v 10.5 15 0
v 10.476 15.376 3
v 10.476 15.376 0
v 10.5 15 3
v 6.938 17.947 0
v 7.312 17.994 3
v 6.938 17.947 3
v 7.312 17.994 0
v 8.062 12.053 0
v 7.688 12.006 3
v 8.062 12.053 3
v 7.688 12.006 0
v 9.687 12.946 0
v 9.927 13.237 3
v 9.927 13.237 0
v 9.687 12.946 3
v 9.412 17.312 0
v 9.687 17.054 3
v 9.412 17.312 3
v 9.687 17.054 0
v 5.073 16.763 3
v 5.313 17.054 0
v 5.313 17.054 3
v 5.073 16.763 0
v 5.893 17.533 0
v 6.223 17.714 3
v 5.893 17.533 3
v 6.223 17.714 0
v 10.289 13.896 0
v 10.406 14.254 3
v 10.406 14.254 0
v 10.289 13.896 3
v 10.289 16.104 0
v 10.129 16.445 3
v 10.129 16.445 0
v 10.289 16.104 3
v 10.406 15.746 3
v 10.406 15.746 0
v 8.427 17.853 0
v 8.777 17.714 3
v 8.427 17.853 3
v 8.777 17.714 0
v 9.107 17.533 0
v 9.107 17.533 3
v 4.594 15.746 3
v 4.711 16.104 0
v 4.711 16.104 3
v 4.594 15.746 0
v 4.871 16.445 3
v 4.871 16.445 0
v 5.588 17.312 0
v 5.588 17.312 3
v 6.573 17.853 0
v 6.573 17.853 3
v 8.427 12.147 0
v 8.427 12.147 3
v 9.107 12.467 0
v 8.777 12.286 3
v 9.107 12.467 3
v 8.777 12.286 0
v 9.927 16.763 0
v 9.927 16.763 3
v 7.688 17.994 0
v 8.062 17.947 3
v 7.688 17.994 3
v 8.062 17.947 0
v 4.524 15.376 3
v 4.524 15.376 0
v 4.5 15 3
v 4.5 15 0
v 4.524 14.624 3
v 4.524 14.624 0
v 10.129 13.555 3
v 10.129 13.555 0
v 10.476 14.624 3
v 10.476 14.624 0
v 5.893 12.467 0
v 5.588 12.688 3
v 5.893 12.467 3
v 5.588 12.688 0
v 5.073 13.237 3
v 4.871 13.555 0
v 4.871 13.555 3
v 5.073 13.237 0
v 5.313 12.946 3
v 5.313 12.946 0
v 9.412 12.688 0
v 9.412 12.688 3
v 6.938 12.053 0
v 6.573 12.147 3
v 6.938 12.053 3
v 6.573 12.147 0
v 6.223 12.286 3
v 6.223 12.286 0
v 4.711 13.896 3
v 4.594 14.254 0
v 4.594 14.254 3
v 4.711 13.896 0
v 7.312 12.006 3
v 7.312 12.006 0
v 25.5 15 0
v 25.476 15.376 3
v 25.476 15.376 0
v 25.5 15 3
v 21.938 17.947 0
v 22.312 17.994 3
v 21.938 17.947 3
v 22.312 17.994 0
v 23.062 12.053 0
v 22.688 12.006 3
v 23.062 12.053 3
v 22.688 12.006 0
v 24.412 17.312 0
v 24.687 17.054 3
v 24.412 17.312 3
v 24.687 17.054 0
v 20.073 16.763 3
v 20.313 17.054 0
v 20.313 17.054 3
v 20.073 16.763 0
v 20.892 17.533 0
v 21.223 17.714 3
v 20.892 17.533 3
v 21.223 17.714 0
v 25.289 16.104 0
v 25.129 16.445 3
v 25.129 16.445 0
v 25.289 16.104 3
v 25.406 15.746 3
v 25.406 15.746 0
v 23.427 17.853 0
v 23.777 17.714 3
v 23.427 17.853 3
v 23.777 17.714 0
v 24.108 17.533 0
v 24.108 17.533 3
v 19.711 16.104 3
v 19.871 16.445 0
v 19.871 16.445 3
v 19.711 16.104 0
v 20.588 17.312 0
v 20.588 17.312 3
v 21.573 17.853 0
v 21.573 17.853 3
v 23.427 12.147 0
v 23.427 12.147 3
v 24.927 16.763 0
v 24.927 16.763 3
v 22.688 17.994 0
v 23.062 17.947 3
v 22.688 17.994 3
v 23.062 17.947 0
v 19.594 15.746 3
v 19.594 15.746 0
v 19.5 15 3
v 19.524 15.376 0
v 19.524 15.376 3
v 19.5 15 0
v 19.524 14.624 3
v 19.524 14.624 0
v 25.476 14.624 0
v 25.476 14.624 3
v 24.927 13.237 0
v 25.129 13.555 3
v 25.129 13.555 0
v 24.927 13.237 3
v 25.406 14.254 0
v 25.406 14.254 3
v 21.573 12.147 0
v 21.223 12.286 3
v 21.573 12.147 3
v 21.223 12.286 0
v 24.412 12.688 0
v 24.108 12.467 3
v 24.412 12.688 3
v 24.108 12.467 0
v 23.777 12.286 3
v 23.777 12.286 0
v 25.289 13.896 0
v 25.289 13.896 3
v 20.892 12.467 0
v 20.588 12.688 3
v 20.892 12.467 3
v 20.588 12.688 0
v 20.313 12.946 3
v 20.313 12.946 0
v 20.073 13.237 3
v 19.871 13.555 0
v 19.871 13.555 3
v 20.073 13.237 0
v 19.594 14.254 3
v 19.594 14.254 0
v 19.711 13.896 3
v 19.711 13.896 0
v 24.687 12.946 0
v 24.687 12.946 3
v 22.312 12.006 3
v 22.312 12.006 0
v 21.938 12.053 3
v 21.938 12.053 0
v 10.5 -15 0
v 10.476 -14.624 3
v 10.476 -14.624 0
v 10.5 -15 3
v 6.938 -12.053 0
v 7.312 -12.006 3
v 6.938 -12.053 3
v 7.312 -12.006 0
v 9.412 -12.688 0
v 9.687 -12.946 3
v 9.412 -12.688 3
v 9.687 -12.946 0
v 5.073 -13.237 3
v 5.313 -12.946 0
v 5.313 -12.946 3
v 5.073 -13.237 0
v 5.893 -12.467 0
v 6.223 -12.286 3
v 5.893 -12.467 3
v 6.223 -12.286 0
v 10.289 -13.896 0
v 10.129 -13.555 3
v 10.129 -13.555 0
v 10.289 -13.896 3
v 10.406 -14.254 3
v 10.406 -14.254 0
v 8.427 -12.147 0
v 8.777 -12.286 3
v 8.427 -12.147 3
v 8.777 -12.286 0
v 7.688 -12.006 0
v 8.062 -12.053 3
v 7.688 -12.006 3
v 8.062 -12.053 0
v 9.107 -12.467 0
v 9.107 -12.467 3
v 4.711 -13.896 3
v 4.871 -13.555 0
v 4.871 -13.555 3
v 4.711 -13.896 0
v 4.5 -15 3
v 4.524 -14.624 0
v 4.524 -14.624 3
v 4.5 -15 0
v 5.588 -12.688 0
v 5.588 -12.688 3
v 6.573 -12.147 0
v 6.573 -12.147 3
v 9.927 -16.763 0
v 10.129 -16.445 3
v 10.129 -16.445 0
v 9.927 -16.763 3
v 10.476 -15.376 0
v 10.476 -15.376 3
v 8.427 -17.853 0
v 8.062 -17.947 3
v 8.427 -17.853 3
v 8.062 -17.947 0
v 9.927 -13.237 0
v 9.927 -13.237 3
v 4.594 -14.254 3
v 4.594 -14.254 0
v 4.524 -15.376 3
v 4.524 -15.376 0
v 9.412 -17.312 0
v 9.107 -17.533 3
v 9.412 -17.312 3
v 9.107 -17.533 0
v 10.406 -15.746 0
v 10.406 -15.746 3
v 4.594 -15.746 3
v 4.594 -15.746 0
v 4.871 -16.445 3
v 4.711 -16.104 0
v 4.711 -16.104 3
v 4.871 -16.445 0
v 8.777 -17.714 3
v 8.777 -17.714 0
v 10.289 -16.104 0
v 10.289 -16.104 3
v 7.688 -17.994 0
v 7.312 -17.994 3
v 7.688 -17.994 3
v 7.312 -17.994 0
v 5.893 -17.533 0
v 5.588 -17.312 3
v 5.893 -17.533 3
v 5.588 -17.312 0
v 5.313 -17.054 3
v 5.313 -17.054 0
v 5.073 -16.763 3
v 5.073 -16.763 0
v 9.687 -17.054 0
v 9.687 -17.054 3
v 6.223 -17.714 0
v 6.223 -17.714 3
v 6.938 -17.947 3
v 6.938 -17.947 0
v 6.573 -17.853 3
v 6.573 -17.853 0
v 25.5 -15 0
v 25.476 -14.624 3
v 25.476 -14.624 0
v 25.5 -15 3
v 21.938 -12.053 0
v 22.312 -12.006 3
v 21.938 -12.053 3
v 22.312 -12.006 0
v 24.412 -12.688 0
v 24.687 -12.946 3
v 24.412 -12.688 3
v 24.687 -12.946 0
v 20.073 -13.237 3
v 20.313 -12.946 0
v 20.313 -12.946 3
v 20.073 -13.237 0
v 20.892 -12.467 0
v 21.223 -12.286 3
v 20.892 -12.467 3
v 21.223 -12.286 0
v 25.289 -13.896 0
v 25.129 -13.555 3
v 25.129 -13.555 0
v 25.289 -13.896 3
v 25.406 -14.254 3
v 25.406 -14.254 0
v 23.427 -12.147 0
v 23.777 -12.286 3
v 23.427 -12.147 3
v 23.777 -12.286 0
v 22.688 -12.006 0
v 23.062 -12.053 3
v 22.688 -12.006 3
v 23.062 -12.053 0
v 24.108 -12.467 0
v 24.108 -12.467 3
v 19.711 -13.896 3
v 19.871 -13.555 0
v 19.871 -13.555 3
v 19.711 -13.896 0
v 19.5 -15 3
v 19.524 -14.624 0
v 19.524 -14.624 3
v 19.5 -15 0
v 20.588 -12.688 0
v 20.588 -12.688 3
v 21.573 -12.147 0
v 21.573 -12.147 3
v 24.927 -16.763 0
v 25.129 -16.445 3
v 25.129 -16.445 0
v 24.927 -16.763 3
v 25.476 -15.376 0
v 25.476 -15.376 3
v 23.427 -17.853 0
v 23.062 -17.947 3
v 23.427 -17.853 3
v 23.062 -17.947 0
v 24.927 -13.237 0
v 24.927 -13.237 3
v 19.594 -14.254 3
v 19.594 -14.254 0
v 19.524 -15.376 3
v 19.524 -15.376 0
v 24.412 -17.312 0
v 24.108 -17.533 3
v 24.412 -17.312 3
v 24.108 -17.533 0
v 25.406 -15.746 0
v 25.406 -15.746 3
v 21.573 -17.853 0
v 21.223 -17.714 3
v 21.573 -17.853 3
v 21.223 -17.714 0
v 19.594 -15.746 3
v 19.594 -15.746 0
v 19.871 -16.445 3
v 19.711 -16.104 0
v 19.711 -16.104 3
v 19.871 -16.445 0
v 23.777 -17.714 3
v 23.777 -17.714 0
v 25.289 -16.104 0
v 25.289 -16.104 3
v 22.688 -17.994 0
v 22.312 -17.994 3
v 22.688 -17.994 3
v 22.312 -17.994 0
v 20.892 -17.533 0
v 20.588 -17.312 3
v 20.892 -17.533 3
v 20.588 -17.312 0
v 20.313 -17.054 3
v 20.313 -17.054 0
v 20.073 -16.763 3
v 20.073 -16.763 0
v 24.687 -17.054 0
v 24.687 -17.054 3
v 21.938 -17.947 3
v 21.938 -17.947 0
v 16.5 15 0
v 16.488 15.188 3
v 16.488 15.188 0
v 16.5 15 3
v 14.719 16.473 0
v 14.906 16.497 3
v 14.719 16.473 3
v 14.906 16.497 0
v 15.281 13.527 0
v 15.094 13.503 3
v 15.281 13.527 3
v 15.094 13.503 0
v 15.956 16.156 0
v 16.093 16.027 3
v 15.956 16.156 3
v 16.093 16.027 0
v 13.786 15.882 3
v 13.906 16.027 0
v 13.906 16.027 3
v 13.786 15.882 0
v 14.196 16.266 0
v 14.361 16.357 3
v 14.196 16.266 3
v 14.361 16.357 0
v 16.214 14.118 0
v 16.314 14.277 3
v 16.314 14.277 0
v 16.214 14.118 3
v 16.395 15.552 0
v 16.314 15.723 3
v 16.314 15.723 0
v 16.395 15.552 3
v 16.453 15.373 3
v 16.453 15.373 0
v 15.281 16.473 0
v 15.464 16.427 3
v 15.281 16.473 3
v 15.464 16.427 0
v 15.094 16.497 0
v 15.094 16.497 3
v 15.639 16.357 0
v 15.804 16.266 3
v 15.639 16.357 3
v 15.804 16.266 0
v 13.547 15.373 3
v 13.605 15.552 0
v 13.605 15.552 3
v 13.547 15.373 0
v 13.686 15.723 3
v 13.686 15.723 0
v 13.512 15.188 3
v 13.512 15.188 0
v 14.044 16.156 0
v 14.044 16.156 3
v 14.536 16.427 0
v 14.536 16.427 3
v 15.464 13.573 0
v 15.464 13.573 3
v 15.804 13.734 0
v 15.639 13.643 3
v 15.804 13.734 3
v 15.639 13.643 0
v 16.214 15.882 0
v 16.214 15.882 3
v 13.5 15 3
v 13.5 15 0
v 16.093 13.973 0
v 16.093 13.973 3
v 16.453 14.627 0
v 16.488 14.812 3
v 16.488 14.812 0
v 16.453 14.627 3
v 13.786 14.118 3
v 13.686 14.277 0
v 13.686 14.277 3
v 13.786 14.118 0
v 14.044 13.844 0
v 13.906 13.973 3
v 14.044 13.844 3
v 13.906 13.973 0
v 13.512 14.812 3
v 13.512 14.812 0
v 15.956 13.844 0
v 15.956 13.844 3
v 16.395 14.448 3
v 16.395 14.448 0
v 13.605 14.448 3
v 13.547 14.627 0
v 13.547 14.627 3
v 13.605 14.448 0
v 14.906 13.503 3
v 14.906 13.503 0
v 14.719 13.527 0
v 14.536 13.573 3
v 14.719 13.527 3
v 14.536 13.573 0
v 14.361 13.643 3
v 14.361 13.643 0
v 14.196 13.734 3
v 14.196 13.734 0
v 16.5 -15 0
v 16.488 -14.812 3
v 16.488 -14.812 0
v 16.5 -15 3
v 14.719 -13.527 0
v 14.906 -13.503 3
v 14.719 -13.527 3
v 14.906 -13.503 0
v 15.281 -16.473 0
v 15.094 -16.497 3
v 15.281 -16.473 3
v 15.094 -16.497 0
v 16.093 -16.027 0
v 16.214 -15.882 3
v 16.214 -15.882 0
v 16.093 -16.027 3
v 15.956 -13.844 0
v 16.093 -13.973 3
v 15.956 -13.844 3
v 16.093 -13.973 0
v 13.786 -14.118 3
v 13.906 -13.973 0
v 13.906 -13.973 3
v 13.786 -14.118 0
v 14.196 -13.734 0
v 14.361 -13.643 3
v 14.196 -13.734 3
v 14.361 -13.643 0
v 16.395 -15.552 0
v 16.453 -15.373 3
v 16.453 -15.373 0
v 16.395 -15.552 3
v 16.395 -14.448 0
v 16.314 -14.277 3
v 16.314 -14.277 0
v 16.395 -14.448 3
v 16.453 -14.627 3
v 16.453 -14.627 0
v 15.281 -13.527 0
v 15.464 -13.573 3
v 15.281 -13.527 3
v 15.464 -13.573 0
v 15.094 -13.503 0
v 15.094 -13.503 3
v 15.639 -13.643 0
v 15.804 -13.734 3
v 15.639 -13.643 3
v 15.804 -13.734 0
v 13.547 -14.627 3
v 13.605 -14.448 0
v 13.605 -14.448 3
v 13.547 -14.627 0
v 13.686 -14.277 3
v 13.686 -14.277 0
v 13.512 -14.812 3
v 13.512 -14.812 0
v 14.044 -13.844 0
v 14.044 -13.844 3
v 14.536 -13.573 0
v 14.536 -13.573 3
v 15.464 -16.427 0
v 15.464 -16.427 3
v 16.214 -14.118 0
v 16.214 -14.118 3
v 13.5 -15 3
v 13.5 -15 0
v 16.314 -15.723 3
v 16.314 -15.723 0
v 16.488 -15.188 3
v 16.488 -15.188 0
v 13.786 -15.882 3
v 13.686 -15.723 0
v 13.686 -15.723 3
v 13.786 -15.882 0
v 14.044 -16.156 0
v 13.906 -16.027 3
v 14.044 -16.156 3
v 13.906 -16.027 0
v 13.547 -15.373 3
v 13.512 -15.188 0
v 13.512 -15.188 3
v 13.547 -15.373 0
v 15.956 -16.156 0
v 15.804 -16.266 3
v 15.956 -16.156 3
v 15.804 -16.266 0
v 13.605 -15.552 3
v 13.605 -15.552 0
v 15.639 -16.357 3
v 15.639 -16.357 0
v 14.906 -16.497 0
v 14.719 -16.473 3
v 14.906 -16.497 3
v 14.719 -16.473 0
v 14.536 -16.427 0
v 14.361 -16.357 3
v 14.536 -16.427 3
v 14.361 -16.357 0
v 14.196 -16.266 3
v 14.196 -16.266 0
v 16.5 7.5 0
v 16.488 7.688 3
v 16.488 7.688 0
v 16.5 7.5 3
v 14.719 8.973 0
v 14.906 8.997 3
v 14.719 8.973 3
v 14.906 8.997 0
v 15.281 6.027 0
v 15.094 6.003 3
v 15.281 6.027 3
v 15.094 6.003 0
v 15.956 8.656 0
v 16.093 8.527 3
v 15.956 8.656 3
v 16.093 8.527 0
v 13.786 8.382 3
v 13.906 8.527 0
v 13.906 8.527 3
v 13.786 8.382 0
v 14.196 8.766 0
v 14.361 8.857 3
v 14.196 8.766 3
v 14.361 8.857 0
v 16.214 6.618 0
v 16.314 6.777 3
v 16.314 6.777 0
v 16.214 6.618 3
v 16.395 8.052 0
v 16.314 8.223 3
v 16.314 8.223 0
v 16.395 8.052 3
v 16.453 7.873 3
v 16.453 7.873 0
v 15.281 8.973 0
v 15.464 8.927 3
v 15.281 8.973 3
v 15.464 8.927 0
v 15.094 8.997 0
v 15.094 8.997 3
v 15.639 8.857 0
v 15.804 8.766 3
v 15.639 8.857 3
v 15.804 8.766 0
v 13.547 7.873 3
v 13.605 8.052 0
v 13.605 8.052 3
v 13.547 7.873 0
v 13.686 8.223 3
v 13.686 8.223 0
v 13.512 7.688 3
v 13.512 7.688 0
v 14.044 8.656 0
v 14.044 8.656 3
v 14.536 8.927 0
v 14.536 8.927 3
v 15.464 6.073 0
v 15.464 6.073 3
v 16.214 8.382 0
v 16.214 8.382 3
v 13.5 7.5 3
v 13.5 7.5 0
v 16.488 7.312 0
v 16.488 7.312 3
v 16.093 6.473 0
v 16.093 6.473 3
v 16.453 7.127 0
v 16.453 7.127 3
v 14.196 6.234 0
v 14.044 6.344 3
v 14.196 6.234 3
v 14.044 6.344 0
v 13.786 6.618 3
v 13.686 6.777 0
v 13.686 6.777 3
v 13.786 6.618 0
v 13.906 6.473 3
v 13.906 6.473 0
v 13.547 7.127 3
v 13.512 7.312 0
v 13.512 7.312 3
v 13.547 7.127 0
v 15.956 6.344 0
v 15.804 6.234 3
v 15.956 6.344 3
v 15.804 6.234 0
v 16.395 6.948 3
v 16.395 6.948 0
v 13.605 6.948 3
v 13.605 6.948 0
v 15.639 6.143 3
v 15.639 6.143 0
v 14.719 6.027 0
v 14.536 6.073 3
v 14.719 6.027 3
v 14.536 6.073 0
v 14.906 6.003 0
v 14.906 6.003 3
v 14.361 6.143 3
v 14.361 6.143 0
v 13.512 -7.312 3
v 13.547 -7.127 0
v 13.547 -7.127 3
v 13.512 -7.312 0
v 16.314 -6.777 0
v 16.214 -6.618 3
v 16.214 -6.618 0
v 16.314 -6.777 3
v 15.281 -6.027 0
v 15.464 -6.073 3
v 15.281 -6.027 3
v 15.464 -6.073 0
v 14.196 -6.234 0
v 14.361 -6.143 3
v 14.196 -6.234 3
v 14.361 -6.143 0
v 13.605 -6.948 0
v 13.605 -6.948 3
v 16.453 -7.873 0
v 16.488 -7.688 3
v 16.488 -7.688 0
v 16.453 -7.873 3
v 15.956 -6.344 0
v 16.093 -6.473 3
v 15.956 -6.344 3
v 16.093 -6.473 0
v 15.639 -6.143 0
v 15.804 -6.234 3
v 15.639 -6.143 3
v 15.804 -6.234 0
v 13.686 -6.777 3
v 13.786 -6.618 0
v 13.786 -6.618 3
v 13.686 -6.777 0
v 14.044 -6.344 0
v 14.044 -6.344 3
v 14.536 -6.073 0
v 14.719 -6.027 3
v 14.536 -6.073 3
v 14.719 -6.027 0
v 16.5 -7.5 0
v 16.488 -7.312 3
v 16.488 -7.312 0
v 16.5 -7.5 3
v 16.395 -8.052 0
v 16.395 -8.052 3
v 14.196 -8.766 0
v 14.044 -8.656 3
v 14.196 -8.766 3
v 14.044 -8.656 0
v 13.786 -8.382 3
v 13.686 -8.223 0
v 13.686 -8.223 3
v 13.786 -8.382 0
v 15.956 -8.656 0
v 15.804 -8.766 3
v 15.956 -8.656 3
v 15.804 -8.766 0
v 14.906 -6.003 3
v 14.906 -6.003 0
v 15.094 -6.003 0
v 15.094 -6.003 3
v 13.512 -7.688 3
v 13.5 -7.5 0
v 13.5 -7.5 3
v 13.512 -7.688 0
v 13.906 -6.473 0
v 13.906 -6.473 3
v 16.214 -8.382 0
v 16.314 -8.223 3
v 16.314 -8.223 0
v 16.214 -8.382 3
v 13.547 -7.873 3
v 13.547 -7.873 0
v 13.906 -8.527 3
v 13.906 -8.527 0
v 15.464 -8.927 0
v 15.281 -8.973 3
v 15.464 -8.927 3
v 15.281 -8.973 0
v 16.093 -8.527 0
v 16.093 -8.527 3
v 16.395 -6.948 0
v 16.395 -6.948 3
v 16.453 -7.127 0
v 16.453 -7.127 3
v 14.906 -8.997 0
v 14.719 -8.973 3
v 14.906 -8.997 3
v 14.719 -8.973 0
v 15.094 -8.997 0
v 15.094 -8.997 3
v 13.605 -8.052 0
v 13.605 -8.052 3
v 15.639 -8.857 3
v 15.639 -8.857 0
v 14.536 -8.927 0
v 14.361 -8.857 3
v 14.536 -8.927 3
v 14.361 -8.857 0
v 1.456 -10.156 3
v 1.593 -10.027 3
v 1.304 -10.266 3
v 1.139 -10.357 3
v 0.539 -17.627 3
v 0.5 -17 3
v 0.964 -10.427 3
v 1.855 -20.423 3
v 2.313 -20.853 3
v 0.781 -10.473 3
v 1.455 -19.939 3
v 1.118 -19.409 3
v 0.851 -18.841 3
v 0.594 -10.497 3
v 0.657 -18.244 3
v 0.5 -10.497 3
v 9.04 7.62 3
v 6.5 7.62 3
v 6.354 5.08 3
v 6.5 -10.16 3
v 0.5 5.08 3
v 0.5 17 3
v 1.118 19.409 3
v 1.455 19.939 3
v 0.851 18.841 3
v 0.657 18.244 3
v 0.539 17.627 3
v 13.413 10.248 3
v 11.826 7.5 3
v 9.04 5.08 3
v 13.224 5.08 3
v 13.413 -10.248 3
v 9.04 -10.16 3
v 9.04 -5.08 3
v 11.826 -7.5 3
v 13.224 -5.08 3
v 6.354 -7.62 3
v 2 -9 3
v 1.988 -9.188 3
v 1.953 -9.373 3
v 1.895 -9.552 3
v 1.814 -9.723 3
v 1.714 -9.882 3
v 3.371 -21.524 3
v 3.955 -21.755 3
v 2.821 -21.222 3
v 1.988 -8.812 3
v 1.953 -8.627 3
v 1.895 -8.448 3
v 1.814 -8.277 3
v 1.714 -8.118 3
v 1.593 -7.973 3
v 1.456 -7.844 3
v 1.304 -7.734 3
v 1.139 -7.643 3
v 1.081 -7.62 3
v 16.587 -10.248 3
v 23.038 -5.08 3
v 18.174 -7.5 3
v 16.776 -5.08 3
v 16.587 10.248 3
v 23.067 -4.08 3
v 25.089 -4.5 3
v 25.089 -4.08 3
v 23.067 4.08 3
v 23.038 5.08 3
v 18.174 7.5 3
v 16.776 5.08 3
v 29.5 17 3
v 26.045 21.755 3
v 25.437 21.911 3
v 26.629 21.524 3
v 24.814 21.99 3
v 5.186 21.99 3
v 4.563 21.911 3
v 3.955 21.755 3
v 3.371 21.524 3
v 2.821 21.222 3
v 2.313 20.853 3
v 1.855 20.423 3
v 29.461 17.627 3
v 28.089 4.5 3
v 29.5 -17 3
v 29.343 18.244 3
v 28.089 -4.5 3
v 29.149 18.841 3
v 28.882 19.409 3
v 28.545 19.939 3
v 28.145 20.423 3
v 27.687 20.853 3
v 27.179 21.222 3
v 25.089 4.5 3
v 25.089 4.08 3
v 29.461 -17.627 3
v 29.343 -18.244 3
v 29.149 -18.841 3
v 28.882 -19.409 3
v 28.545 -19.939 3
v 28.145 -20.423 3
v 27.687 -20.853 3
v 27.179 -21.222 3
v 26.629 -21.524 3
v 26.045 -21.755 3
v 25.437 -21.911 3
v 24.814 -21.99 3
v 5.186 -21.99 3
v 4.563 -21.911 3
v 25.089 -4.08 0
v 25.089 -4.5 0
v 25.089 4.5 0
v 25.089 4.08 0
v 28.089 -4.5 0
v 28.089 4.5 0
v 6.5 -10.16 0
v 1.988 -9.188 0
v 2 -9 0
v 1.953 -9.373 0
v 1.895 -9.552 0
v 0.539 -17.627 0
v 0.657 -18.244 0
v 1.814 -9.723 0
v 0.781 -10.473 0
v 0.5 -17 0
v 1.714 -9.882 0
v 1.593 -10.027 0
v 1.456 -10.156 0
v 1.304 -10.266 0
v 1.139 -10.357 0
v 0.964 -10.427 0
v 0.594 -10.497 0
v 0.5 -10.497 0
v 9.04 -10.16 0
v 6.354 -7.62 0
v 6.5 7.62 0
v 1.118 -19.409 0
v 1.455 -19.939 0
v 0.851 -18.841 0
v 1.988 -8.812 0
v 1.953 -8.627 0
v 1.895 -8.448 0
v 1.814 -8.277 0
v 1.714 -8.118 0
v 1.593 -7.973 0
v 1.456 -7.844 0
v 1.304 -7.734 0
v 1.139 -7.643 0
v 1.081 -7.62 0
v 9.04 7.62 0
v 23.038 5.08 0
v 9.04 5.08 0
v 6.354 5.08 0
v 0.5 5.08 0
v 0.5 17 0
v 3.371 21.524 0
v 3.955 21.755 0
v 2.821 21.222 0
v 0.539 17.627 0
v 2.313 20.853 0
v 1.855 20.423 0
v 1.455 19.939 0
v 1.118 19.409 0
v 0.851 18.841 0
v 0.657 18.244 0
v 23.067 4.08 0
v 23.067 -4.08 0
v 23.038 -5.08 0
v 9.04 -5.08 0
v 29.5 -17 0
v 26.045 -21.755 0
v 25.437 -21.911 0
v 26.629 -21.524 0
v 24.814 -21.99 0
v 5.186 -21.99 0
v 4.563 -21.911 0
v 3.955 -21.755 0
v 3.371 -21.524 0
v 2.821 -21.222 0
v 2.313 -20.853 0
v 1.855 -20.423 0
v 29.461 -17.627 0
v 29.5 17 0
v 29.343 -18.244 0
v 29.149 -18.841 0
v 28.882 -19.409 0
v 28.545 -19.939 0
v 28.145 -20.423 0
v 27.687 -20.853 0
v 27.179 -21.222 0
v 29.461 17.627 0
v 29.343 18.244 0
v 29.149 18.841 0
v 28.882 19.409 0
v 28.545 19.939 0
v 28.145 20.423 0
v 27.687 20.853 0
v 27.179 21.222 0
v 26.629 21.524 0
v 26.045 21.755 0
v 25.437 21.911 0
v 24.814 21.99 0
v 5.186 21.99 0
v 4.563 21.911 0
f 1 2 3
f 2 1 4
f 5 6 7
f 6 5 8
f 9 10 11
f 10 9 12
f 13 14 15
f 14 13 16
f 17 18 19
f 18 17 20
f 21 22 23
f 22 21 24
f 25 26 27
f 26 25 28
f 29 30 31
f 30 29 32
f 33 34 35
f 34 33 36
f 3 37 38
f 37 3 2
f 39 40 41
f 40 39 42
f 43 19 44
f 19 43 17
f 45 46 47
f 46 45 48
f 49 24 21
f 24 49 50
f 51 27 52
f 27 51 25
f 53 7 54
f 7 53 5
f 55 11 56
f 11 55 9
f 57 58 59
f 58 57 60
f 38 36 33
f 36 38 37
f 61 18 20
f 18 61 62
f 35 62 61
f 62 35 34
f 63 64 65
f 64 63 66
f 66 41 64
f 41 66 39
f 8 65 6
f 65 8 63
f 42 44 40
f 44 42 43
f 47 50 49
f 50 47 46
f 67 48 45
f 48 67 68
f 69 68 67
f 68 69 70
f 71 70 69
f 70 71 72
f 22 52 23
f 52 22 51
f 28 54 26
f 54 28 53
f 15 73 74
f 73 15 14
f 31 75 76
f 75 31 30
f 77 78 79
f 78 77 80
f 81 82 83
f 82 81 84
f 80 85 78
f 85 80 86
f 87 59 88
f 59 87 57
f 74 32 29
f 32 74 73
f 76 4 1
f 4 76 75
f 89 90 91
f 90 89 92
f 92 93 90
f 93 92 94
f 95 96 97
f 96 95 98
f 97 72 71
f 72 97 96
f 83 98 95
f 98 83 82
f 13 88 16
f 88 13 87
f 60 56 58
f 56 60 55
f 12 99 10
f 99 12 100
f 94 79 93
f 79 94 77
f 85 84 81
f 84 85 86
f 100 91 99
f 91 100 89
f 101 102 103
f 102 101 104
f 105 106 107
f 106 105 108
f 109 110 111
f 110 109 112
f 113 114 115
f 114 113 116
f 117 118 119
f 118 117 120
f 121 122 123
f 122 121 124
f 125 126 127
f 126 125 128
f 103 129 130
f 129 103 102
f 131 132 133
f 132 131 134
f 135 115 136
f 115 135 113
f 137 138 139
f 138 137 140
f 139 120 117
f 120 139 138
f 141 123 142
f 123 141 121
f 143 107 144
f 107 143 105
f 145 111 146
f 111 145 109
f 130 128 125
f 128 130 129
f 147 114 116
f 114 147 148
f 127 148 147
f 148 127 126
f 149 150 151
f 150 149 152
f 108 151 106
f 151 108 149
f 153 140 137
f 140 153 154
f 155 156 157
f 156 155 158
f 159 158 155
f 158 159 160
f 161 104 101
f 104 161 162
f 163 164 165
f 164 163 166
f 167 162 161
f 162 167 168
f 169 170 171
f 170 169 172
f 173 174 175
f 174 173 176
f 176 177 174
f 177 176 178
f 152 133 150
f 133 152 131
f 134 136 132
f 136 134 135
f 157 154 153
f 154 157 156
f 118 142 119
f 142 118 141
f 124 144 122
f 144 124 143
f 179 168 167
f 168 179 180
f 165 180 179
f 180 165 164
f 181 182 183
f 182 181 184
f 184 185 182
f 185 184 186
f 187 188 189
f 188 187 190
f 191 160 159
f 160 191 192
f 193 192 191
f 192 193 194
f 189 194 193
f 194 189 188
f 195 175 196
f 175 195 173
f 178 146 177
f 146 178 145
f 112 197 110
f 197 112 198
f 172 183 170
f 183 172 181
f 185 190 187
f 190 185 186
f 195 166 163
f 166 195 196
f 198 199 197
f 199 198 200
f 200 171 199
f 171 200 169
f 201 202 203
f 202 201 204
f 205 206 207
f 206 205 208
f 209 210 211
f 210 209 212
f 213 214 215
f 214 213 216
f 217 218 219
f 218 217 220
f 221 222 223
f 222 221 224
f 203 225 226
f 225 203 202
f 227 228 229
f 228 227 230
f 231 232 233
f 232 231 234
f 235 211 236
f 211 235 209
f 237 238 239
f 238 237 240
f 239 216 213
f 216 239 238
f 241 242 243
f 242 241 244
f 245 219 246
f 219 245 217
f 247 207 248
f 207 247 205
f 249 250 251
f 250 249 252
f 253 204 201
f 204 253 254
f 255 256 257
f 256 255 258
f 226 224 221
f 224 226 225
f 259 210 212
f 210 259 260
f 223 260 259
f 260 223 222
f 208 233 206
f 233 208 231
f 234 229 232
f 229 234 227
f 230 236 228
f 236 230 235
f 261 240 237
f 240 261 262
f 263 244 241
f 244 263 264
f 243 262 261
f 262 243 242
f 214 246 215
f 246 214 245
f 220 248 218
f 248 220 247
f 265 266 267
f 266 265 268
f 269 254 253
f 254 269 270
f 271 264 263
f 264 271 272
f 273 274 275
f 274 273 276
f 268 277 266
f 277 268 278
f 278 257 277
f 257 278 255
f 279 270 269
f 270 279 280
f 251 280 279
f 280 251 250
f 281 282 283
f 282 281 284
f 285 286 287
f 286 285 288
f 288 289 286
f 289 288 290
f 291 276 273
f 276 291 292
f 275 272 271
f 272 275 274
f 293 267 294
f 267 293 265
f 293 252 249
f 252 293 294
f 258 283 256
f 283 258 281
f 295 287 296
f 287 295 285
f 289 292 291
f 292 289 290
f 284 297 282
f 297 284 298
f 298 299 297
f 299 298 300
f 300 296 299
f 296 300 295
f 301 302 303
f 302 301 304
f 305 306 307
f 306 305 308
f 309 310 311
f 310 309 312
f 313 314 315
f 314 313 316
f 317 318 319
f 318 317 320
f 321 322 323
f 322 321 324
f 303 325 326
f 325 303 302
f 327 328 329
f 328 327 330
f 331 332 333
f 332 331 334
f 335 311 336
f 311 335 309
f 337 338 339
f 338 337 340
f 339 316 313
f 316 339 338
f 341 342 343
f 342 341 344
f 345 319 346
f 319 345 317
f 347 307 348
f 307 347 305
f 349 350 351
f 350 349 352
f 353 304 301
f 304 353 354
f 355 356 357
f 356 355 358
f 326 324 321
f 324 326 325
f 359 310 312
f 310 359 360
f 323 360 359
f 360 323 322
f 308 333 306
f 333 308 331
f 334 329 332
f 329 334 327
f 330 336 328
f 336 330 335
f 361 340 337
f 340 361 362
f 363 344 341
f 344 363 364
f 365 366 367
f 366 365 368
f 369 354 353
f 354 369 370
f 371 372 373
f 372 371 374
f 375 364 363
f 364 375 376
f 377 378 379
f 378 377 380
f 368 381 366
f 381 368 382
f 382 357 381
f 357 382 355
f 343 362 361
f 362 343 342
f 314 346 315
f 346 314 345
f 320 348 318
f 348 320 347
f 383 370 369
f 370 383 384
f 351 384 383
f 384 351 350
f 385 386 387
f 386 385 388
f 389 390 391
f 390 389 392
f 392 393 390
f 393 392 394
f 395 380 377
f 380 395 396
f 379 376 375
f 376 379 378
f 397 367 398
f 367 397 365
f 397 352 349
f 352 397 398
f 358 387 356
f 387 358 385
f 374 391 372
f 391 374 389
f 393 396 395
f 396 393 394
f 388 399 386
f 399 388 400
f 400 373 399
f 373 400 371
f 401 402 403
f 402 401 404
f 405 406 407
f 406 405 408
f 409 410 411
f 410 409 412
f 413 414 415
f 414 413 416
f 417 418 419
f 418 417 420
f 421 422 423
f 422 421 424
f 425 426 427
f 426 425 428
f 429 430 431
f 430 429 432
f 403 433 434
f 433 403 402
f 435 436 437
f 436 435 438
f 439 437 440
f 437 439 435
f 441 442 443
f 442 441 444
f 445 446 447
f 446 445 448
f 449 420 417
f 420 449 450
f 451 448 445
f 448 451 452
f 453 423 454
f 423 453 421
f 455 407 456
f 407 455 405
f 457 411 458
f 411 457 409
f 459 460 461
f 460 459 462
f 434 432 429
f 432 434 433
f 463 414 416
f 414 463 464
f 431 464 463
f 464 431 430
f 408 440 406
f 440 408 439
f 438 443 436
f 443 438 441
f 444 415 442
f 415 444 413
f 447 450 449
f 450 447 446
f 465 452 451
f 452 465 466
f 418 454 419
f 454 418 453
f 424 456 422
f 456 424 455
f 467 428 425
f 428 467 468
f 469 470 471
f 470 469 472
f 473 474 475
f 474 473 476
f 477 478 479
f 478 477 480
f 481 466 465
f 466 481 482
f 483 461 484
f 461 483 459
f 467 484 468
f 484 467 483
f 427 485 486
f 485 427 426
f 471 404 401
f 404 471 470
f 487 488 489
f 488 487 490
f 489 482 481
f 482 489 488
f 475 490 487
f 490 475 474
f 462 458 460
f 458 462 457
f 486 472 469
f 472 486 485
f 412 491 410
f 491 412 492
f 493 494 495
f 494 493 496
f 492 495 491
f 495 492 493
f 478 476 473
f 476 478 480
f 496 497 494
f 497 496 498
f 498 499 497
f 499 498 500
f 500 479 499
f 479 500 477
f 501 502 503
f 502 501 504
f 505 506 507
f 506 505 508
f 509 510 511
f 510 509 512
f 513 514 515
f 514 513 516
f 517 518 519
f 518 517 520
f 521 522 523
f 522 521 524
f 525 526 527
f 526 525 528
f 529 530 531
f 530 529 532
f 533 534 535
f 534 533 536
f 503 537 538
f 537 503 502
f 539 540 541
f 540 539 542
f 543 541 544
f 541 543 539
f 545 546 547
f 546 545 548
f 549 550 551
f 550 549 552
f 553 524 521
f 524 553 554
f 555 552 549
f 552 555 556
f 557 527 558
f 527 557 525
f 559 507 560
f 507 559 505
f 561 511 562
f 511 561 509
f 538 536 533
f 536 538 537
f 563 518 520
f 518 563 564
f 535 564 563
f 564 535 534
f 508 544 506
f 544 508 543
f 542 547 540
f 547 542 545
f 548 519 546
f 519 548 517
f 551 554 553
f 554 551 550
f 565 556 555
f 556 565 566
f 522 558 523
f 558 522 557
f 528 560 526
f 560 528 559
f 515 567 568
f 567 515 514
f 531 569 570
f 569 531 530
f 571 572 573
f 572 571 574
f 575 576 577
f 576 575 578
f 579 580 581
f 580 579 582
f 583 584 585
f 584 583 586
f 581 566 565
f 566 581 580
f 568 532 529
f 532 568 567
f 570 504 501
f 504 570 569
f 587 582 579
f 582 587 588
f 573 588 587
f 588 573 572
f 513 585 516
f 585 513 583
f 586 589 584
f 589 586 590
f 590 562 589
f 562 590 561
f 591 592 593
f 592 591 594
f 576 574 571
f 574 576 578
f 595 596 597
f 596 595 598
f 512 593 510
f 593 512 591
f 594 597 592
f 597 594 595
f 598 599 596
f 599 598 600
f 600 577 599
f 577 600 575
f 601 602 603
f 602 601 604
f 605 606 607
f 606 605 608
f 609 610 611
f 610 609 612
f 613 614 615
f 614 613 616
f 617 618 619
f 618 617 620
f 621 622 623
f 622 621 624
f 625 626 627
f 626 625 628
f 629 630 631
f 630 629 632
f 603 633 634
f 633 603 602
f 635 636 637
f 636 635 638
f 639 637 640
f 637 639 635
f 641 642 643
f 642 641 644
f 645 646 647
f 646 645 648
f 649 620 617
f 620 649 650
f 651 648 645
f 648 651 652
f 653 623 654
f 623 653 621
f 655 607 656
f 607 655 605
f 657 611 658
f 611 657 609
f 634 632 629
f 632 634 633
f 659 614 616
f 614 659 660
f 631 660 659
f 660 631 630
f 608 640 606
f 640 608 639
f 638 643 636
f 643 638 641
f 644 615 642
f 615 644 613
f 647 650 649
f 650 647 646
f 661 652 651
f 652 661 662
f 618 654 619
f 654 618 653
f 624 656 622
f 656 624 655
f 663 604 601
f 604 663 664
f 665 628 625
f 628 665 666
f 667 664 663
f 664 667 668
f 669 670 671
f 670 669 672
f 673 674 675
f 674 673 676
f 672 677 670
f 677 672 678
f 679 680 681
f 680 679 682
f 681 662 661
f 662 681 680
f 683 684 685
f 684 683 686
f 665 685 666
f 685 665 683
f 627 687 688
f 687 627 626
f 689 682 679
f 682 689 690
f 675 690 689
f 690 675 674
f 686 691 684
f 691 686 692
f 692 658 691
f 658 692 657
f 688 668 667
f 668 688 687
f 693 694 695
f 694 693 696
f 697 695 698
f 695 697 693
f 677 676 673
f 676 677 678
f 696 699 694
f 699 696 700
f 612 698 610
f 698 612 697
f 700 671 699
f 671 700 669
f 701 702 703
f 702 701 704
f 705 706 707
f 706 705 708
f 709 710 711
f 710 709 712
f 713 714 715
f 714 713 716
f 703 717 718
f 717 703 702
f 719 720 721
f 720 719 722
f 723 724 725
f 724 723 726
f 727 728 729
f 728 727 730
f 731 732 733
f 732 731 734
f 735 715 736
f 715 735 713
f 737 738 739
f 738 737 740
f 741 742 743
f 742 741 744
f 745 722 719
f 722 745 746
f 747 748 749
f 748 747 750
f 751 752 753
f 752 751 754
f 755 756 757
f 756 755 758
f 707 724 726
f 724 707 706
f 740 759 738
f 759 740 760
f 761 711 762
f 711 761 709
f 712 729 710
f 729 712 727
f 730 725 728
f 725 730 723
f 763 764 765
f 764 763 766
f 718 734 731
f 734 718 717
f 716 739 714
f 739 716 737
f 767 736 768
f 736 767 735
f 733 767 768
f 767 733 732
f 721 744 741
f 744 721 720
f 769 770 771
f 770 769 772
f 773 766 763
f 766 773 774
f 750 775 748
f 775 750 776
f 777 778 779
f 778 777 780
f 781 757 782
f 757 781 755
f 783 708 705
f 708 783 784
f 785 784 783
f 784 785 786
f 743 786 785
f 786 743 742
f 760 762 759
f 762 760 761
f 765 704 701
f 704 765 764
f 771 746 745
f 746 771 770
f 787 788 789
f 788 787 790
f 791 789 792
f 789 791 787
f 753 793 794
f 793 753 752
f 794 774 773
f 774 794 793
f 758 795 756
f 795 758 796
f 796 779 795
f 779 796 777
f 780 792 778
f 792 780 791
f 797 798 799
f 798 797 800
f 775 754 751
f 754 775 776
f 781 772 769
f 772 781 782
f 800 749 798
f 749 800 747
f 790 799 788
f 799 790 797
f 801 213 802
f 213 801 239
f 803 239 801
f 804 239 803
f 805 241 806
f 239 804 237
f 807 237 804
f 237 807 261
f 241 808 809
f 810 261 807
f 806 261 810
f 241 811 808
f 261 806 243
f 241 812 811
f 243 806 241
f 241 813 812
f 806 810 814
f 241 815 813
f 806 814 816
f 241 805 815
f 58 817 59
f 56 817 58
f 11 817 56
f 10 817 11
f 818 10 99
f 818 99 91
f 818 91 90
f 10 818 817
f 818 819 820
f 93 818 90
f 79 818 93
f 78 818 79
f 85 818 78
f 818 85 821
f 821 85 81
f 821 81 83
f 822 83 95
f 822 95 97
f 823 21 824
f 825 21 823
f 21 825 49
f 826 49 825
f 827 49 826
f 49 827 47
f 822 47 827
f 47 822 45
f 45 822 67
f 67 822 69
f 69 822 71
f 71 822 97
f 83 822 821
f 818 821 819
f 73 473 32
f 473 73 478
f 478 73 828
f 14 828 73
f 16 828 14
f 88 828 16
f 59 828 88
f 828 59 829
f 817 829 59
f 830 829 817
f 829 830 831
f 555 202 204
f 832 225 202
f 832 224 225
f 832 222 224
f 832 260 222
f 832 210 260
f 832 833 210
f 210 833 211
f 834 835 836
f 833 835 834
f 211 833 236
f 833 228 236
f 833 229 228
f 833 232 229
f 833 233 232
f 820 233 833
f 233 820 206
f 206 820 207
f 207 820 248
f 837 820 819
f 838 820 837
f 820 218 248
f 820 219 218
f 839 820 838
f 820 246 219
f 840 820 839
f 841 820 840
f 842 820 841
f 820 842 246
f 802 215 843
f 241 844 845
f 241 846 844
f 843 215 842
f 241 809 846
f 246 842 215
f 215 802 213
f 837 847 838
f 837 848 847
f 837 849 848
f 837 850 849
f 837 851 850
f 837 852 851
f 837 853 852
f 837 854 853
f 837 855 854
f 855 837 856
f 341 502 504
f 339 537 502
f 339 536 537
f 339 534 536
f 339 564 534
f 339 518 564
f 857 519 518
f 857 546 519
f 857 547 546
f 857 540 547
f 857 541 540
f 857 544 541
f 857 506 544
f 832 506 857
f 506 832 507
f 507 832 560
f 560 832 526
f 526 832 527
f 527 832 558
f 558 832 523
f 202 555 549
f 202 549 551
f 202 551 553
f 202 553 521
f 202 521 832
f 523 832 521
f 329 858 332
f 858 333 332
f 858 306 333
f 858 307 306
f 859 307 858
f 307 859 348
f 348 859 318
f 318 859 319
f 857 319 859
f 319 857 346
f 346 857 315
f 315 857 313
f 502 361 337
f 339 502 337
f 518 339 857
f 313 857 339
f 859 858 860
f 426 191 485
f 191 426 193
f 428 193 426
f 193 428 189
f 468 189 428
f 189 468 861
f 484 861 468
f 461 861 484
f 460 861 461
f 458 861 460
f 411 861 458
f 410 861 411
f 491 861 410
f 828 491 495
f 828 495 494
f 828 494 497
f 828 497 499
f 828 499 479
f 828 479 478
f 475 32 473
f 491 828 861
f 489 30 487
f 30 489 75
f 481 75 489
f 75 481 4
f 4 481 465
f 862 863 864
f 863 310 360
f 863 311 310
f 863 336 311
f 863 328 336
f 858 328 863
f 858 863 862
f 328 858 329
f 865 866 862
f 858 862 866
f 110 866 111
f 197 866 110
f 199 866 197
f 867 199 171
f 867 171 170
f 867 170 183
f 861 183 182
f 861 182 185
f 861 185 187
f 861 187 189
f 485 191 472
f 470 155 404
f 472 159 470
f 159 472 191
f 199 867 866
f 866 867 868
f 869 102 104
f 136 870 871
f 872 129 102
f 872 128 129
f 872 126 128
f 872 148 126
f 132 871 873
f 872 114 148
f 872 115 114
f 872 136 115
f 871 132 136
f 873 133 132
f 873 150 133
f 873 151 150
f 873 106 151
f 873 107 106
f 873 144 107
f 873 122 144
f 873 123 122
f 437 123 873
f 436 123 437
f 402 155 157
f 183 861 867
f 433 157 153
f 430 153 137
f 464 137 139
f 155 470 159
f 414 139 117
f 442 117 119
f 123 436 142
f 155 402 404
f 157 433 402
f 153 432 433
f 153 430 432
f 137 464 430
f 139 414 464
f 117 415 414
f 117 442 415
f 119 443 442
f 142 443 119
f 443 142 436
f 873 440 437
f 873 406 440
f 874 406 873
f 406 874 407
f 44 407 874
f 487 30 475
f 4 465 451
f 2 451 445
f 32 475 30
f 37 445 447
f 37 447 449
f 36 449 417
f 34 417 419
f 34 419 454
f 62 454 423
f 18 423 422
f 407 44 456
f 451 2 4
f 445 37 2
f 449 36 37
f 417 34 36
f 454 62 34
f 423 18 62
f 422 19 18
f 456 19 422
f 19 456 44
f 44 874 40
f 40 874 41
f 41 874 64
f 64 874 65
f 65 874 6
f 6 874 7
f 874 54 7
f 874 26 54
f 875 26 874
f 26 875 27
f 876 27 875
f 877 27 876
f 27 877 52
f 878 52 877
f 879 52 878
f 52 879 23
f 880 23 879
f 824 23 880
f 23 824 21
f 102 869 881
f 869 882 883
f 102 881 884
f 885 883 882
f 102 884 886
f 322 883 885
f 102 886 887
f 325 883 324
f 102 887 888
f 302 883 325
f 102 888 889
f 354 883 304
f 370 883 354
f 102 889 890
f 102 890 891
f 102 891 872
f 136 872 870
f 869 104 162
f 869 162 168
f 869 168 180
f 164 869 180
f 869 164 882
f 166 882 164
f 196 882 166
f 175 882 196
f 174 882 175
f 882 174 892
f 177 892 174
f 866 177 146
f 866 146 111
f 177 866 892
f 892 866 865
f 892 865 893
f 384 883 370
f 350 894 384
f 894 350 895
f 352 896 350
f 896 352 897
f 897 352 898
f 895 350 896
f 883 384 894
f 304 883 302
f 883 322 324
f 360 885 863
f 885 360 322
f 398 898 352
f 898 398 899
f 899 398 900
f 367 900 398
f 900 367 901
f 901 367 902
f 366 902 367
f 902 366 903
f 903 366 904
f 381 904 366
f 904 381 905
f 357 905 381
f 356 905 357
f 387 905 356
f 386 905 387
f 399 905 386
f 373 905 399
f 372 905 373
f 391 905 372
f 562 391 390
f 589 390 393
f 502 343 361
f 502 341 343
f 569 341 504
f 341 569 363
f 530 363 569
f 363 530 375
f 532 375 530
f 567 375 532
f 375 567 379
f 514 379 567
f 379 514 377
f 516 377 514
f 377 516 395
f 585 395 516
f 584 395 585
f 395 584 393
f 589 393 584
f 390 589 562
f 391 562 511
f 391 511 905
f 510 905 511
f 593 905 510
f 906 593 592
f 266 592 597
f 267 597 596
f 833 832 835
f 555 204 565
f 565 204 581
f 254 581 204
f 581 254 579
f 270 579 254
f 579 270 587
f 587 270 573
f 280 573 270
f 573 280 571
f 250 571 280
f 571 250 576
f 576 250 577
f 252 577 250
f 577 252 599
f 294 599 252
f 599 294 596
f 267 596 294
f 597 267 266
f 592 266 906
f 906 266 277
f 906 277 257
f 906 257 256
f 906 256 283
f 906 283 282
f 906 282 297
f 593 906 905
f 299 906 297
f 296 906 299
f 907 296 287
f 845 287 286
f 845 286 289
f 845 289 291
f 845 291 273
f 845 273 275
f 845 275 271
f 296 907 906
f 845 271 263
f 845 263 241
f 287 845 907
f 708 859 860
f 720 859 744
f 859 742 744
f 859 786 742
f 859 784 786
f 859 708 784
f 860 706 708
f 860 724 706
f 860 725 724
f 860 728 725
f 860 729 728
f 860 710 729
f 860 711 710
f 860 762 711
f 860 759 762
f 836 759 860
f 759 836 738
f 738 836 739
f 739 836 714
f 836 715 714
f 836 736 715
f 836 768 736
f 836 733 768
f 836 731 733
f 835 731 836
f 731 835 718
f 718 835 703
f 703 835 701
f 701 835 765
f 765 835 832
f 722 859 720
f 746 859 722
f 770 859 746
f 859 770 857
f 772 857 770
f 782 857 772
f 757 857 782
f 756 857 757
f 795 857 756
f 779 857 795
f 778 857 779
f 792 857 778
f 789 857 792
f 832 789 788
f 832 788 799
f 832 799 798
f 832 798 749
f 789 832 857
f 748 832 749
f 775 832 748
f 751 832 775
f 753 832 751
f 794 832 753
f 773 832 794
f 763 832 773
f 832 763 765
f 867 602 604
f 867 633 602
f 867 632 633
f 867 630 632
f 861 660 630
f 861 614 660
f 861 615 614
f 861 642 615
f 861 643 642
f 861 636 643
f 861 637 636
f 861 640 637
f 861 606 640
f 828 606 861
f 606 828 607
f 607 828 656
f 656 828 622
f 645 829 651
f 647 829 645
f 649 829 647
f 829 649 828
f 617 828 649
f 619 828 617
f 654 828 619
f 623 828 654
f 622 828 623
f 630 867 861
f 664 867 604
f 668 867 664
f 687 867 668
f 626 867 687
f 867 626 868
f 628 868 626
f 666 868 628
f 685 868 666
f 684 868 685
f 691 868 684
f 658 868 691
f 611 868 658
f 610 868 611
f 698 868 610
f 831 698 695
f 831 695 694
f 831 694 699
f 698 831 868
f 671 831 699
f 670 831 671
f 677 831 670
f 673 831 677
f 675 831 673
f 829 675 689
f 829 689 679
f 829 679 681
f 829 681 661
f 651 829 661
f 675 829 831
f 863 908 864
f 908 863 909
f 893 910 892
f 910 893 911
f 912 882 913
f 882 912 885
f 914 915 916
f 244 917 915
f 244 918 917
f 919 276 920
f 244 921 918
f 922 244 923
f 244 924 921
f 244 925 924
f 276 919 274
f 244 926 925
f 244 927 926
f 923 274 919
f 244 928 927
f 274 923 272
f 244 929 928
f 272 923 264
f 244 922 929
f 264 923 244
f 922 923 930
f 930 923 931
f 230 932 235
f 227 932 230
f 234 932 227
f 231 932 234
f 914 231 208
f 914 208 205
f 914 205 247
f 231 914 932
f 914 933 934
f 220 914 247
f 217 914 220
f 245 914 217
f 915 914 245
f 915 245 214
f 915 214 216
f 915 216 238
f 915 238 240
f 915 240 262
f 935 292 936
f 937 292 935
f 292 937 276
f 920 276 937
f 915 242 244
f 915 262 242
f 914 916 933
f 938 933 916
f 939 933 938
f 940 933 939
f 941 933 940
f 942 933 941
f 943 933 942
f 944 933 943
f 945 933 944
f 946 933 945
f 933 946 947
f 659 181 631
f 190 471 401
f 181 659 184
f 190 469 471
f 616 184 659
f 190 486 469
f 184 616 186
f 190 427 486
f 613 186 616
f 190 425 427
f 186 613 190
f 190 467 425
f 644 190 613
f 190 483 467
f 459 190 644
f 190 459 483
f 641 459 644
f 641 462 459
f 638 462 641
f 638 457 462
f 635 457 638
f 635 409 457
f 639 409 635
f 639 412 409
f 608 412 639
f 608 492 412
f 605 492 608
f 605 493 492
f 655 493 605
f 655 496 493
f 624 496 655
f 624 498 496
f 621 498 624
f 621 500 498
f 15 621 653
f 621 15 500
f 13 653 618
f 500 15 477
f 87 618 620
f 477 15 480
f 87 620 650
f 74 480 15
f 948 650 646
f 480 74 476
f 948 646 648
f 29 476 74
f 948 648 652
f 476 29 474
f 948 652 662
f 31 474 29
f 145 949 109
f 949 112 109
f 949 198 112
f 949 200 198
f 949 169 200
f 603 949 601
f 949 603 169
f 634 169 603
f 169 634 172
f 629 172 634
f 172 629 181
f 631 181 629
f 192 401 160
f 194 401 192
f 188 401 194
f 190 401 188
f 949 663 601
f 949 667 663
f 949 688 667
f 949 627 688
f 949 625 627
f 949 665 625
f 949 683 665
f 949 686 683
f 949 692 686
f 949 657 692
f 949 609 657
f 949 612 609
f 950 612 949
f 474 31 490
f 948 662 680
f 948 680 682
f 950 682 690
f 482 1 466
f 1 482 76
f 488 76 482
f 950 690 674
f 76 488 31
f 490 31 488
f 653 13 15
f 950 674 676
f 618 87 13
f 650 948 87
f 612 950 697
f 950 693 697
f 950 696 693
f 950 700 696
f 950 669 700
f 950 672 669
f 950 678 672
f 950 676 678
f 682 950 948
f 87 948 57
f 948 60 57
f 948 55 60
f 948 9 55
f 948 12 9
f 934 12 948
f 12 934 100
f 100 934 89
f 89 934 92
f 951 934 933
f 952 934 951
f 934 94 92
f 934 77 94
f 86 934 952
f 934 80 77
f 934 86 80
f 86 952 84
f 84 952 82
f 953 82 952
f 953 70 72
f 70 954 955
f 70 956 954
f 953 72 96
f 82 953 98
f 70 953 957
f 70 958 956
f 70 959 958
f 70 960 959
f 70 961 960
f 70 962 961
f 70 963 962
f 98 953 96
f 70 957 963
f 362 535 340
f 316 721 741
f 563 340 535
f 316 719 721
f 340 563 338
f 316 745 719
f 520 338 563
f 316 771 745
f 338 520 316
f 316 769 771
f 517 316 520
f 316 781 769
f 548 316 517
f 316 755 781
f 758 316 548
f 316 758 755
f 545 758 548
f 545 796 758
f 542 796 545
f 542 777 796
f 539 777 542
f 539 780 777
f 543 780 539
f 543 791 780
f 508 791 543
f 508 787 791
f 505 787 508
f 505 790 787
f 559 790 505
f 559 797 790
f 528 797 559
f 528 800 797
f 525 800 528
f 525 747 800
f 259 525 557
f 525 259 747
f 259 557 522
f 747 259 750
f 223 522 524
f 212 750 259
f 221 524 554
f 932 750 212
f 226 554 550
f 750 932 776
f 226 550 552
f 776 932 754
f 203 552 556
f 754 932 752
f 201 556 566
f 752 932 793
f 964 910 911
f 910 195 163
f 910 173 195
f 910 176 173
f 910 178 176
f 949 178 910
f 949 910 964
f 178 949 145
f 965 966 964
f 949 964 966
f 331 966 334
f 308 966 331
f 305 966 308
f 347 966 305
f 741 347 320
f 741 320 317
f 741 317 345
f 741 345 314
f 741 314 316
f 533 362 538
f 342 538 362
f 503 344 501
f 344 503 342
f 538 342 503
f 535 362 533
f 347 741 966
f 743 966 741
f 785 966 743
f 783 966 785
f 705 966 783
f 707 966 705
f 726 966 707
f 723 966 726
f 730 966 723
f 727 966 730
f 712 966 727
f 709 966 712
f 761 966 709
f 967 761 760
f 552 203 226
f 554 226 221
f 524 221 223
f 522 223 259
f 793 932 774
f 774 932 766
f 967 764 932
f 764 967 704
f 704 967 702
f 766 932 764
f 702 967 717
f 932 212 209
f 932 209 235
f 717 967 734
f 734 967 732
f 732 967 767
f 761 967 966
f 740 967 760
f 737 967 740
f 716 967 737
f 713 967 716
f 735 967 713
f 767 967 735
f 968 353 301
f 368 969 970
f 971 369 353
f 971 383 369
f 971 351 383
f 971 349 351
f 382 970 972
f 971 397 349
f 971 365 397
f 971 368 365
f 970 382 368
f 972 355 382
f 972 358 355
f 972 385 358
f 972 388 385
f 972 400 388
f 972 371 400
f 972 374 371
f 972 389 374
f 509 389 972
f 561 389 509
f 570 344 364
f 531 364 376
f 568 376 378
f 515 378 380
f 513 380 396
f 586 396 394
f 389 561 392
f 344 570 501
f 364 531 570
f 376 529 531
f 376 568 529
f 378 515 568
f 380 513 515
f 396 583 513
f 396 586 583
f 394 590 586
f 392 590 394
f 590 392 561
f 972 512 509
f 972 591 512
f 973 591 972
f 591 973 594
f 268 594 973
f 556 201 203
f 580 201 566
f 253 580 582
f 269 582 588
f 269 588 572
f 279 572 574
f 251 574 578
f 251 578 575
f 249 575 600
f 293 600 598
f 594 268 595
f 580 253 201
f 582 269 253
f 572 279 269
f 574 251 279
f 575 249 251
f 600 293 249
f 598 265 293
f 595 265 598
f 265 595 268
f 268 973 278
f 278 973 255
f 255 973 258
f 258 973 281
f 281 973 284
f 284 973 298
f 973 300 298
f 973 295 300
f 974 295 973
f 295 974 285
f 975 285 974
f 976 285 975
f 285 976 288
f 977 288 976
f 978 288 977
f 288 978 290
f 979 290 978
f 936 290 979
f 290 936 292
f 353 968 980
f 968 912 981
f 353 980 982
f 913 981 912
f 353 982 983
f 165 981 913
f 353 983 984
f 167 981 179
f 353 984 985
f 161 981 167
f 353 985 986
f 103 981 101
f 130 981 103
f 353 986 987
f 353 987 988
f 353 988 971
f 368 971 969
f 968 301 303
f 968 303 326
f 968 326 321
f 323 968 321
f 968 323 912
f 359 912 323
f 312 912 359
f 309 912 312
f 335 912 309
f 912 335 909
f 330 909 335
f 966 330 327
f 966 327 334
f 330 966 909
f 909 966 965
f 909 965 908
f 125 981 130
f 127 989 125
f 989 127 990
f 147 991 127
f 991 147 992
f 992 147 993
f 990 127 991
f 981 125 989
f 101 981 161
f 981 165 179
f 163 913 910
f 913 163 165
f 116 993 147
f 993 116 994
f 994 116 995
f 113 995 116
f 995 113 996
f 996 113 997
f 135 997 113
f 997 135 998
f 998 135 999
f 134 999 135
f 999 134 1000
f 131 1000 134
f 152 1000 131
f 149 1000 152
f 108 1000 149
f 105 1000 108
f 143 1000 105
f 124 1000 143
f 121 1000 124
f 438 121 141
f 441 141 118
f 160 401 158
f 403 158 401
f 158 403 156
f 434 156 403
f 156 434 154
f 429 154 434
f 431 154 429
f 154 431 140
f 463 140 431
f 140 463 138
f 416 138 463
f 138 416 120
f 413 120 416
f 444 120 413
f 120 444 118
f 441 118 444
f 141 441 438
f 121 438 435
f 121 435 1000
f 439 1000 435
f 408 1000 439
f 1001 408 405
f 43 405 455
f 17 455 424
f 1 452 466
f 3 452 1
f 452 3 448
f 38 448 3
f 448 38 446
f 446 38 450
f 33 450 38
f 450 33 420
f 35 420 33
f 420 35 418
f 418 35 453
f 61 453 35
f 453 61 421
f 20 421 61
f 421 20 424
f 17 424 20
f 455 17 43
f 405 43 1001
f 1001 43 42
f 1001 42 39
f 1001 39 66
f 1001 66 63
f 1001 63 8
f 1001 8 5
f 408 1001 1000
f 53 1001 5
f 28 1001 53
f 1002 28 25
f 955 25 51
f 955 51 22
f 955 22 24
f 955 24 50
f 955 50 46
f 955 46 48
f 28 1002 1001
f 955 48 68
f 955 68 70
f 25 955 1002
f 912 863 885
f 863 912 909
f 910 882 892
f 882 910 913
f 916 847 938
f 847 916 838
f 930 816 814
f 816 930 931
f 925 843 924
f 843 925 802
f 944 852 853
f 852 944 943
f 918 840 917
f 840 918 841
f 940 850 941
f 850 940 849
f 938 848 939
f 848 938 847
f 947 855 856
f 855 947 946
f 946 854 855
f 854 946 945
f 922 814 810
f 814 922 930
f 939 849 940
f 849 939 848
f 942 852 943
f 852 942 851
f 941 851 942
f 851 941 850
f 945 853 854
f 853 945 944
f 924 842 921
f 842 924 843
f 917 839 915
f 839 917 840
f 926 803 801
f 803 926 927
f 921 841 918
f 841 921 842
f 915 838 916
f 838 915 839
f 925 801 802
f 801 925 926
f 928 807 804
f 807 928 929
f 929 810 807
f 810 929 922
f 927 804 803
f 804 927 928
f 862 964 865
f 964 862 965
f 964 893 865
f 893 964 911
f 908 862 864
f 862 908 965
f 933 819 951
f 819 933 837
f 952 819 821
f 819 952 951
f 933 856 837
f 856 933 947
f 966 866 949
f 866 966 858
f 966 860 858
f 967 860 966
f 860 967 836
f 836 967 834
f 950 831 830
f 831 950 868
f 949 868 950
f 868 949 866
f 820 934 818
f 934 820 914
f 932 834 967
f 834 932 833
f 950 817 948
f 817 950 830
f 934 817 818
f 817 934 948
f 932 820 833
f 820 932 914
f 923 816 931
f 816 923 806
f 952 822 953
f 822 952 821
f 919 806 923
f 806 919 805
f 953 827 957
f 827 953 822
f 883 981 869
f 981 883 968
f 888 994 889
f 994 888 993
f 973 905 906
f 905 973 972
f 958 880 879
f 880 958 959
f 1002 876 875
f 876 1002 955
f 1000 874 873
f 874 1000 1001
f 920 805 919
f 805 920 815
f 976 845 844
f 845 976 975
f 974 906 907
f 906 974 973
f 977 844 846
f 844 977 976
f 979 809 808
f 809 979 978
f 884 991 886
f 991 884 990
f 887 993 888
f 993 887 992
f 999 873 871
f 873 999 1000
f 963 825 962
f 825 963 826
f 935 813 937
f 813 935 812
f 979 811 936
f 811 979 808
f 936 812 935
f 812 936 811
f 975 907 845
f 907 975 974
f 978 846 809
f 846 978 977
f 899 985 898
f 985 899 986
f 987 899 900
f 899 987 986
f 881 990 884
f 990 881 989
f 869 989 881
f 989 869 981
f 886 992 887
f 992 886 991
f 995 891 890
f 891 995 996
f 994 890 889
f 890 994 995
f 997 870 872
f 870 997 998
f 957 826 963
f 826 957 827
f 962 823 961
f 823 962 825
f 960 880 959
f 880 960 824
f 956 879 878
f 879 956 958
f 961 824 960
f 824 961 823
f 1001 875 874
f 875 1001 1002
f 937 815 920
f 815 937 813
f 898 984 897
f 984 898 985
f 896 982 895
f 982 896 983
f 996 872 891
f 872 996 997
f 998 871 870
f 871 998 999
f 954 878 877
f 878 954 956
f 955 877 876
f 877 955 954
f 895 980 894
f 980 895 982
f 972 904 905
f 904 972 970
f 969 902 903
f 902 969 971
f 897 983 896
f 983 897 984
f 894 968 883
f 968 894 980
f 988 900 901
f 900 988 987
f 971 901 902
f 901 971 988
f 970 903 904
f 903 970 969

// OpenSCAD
$fn = 50;


difference() {
	union() {
		translate(v = [15.0000000000, 0, 0]) {
			rotate(a = [0, 0, 0]) {
				hull() {
					translate(v = [-9.5000000000, 17.0000000000, 0]) {
						rotate(a = [0, 0, 0]) {
							translate(v = [0, 0, 0]) {
								rotate(a = [0, 0, 0]) {
									cylinder(h = 3, r = 5);
								}
							}
						}
					}
					translate(v = [9.5000000000, 17.0000000000, 0]) {
						rotate(a = [0, 0, 0]) {
							translate(v = [0, 0, 0]) {
								rotate(a = [0, 0, 0]) {
									cylinder(h = 3, r = 5);
								}
							}
						}
					}
					translate(v = [-9.5000000000, -17.0000000000, 0]) {
						rotate(a = [0, 0, 0]) {
							translate(v = [0, 0, 0]) {
								rotate(a = [0, 0, 0]) {
									cylinder(h = 3, r = 5);
								}
							}
						}
					}
					translate(v = [9.5000000000, -17.0000000000, 0]) {
						rotate(a = [0, 0, 0]) {
							translate(v = [0, 0, 0]) {
								rotate(a = [0, 0, 0]) {
									cylinder(h = 3, r = 5);
								}
							}
						}
					}
				}
			}
		}
	}
	union() {
		translate(v = [7.5000000000, 15.0000000000, -125.0000000000]) {
			rotate(a = [0, 0, 0]) {
				cylinder(h = 250, r = 3.0000000000);
			}
		}
		translate(v = [22.5000000000, 15.0000000000, -125.0000000000]) {
			rotate(a = [0, 0, 0]) {
				cylinder(h = 250, r = 3.0000000000);
			}
		}
		translate(v = [7.5000000000, -15.0000000000, -125.0000000000]) {
			rotate(a = [0, 0, 0]) {
				cylinder(h = 250, r = 3.0000000000);
			}
		}
		translate(v = [22.5000000000, -15.0000000000, -125.0000000000]) {
			rotate(a = [0, 0, 0]) {
				cylinder(h = 250, r = 3.0000000000);
			}
		}
		translate(v = [7.5000000000, 15.0000000000, -125.0000000000]) {
			rotate(a = [0, 0, 0]) {
				cylinder(h = 250, r = 1.5000000000);
			}
		}
		translate(v = [15.0000000000, 15.0000000000, -125.0000000000]) {
			rotate(a = [0, 0, 0]) {
				cylinder(h = 250, r = 1.5000000000);
			}
		}
		translate(v = [22.5000000000, 15.0000000000, -125.0000000000]) {
			rotate(a = [0, 0, 0]) {
				cylinder(h = 250, r = 1.5000000000);
			}
		}
		translate(v = [7.5000000000, -15.0000000000, -125.0000000000]) {
			rotate(a = [0, 0, 0]) {
				cylinder(h = 250, r = 1.5000000000);
			}
		}
		translate(v = [15.0000000000, -15.0000000000, -125.0000000000]) {
			rotate(a = [0, 0, 0]) {
				cylinder(h = 250, r = 1.5000000000);
			}
		}
		translate(v = [22.5000000000, -15.0000000000, -125.0000000000]) {
			rotate(a = [0, 0, 0]) {
				cylinder(h = 250, r = 1.5000000000);
			}
		}
		translate(v = [15, 7.5000000000, -125.0000000000]) {
			rotate(a = [0, 0, 0]) {
				cylinder(h = 250, r = 1.5000000000);
			}
		}
		translate(v = [15, -7.5000000000, -125.0000000000]) {
			rotate(a = [0, 0, 0]) {
				cylinder(h = 250, r = 1.5000000000);
			}
		}
		translate(v = [15, 7.5000000000, 3]) {
			rotate(a = [0, 0, 0]) {
				translate(v = [0, 0, 0]) {
					rotate(a = [0, 0, 0]) {
						linear_extrude(height = 2.5000000000) {
							polygon(points = [[3.1735000000, 0.0000000000], [1.5867500000, 2.7483316189], [-1.5867500000, 2.7483316189], [-3.1735000000, 0.0000000000], [-1.5867500000, -2.7483316189], [1.5867500000, -2.7483316189]]);
						}
					}
				}
			}
		}
		translate(v = [15, -7.5000000000, 3]) {
			rotate(a = [0, 0, 0]) {
				translate(v = [0, 0, 0]) {
					rotate(a = [0, 0, 0]) {
						linear_extrude(height = 2.5000000000) {
							polygon(points = [[3.1735000000, 0.0000000000], [1.5867500000, 2.7483316189], [-1.5867500000, 2.7483316189], [-3.1735000000, 0.0000000000], [-1.5867500000, -2.7483316189], [1.5867500000, -2.7483316189]]);
						}
					}
				}
			}
		}
		translate(v = [25.0890000000, -4.5000000000, 0]) {
			rotate(a = [0, 0, 0]) {
				cube(size = [3, 9, 10]);
			}
		}
		translate(v = [0.5000000000, -9, 0.0000000000]) {
			rotate(a = [0, 0, 0]) {
				cylinder(h = 3, r = 1.5000000000);
			}
		}
		translate(v = [23.0670000000, -4.0800000000, 0]) {
			rotate(a = [0, 0, 0]) {
				cube(size = [5, 8.1600000000, 3]);
			}
		}
		translate(v = [0.3540000000, -7.6200000000, 0]) {
			rotate(a = [0, 0, 0]) {
				cube(size = [6, 12.7000000000, 3]);
			}
		}
		translate(v = [9.0380000000, -5.0800000000, 0]) {
			rotate(a = [0, 0, 0]) {
				cube(size = [14, 10.1600000000, 3]);
			}
		}
		translate(v = [6.5000000000, -10.1600000000, 0]) {
			rotate(a = [0, 0, 0]) {
				cube(size = [2.5400000000, 17.7800000000, 3]);
			}
		}
	}
}
